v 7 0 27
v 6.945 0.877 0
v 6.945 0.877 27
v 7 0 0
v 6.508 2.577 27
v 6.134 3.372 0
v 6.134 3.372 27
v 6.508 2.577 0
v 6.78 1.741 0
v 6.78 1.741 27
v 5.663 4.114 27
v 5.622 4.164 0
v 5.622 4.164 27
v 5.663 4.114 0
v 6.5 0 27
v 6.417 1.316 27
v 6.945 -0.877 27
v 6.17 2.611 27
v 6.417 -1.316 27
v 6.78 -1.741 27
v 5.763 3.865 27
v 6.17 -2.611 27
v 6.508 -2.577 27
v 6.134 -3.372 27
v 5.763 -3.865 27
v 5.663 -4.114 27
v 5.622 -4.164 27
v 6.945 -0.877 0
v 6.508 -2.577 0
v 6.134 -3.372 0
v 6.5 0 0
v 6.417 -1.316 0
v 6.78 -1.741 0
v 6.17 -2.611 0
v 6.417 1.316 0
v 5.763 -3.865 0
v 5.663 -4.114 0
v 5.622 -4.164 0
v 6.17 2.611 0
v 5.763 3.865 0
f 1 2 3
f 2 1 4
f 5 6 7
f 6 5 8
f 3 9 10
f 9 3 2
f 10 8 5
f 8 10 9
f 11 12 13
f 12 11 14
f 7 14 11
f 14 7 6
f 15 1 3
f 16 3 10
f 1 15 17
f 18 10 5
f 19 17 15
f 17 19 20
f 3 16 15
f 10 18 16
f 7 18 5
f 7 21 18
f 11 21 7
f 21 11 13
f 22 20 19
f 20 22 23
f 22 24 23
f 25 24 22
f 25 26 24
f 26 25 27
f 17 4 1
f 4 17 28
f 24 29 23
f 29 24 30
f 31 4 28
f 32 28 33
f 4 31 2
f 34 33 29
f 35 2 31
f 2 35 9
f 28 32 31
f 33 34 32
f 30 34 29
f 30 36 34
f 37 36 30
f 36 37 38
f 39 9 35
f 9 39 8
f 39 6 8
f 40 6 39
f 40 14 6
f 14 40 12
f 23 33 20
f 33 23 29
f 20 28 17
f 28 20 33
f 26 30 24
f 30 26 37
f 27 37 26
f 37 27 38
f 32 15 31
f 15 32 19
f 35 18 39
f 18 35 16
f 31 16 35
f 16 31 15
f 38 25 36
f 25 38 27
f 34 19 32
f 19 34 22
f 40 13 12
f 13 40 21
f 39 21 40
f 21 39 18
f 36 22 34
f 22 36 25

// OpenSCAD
$fn = 50;


difference() {
	union() {
		cylinder(h = 27, r = 7.0000000000);
		translate(v = [-7.0000000000, 0, 0]) {
			cylinder(h = 27, r = 7.0000000000);
		}
	}
	union() {
		cylinder(h = 27, r = 3.2500000000);
		cylinder(h = 27, r = 1.8000000000);
		cylinder(h = 27, r = 1.8000000000);
		cylinder(h = 27, r = 1.8000000000);
		translate(v = [-11.5000000000, 0, 0]) {
			hull() {
				translate(v = [-3.7500000000, 0.0000000000, 0]) {
					cylinder(h = 27, r = 7.5000000000);
				}
				translate(v = [3.7500000000, 0.0000000000, 0]) {
					cylinder(h = 27, r = 7.5000000000);
				}
				translate(v = [-3.7500000000, -0.0000000000, 0]) {
					cylinder(h = 27, r = 7.5000000000);
				}
				translate(v = [3.7500000000, -0.0000000000, 0]) {
					cylinder(h = 27, r = 7.5000000000);
				}
			}
		}
		translate(v = [-4.0000000000, 0, 0.0000000000]) {
			cylinder(h = 27, r = 10.5000000000);
		}
	}
}
